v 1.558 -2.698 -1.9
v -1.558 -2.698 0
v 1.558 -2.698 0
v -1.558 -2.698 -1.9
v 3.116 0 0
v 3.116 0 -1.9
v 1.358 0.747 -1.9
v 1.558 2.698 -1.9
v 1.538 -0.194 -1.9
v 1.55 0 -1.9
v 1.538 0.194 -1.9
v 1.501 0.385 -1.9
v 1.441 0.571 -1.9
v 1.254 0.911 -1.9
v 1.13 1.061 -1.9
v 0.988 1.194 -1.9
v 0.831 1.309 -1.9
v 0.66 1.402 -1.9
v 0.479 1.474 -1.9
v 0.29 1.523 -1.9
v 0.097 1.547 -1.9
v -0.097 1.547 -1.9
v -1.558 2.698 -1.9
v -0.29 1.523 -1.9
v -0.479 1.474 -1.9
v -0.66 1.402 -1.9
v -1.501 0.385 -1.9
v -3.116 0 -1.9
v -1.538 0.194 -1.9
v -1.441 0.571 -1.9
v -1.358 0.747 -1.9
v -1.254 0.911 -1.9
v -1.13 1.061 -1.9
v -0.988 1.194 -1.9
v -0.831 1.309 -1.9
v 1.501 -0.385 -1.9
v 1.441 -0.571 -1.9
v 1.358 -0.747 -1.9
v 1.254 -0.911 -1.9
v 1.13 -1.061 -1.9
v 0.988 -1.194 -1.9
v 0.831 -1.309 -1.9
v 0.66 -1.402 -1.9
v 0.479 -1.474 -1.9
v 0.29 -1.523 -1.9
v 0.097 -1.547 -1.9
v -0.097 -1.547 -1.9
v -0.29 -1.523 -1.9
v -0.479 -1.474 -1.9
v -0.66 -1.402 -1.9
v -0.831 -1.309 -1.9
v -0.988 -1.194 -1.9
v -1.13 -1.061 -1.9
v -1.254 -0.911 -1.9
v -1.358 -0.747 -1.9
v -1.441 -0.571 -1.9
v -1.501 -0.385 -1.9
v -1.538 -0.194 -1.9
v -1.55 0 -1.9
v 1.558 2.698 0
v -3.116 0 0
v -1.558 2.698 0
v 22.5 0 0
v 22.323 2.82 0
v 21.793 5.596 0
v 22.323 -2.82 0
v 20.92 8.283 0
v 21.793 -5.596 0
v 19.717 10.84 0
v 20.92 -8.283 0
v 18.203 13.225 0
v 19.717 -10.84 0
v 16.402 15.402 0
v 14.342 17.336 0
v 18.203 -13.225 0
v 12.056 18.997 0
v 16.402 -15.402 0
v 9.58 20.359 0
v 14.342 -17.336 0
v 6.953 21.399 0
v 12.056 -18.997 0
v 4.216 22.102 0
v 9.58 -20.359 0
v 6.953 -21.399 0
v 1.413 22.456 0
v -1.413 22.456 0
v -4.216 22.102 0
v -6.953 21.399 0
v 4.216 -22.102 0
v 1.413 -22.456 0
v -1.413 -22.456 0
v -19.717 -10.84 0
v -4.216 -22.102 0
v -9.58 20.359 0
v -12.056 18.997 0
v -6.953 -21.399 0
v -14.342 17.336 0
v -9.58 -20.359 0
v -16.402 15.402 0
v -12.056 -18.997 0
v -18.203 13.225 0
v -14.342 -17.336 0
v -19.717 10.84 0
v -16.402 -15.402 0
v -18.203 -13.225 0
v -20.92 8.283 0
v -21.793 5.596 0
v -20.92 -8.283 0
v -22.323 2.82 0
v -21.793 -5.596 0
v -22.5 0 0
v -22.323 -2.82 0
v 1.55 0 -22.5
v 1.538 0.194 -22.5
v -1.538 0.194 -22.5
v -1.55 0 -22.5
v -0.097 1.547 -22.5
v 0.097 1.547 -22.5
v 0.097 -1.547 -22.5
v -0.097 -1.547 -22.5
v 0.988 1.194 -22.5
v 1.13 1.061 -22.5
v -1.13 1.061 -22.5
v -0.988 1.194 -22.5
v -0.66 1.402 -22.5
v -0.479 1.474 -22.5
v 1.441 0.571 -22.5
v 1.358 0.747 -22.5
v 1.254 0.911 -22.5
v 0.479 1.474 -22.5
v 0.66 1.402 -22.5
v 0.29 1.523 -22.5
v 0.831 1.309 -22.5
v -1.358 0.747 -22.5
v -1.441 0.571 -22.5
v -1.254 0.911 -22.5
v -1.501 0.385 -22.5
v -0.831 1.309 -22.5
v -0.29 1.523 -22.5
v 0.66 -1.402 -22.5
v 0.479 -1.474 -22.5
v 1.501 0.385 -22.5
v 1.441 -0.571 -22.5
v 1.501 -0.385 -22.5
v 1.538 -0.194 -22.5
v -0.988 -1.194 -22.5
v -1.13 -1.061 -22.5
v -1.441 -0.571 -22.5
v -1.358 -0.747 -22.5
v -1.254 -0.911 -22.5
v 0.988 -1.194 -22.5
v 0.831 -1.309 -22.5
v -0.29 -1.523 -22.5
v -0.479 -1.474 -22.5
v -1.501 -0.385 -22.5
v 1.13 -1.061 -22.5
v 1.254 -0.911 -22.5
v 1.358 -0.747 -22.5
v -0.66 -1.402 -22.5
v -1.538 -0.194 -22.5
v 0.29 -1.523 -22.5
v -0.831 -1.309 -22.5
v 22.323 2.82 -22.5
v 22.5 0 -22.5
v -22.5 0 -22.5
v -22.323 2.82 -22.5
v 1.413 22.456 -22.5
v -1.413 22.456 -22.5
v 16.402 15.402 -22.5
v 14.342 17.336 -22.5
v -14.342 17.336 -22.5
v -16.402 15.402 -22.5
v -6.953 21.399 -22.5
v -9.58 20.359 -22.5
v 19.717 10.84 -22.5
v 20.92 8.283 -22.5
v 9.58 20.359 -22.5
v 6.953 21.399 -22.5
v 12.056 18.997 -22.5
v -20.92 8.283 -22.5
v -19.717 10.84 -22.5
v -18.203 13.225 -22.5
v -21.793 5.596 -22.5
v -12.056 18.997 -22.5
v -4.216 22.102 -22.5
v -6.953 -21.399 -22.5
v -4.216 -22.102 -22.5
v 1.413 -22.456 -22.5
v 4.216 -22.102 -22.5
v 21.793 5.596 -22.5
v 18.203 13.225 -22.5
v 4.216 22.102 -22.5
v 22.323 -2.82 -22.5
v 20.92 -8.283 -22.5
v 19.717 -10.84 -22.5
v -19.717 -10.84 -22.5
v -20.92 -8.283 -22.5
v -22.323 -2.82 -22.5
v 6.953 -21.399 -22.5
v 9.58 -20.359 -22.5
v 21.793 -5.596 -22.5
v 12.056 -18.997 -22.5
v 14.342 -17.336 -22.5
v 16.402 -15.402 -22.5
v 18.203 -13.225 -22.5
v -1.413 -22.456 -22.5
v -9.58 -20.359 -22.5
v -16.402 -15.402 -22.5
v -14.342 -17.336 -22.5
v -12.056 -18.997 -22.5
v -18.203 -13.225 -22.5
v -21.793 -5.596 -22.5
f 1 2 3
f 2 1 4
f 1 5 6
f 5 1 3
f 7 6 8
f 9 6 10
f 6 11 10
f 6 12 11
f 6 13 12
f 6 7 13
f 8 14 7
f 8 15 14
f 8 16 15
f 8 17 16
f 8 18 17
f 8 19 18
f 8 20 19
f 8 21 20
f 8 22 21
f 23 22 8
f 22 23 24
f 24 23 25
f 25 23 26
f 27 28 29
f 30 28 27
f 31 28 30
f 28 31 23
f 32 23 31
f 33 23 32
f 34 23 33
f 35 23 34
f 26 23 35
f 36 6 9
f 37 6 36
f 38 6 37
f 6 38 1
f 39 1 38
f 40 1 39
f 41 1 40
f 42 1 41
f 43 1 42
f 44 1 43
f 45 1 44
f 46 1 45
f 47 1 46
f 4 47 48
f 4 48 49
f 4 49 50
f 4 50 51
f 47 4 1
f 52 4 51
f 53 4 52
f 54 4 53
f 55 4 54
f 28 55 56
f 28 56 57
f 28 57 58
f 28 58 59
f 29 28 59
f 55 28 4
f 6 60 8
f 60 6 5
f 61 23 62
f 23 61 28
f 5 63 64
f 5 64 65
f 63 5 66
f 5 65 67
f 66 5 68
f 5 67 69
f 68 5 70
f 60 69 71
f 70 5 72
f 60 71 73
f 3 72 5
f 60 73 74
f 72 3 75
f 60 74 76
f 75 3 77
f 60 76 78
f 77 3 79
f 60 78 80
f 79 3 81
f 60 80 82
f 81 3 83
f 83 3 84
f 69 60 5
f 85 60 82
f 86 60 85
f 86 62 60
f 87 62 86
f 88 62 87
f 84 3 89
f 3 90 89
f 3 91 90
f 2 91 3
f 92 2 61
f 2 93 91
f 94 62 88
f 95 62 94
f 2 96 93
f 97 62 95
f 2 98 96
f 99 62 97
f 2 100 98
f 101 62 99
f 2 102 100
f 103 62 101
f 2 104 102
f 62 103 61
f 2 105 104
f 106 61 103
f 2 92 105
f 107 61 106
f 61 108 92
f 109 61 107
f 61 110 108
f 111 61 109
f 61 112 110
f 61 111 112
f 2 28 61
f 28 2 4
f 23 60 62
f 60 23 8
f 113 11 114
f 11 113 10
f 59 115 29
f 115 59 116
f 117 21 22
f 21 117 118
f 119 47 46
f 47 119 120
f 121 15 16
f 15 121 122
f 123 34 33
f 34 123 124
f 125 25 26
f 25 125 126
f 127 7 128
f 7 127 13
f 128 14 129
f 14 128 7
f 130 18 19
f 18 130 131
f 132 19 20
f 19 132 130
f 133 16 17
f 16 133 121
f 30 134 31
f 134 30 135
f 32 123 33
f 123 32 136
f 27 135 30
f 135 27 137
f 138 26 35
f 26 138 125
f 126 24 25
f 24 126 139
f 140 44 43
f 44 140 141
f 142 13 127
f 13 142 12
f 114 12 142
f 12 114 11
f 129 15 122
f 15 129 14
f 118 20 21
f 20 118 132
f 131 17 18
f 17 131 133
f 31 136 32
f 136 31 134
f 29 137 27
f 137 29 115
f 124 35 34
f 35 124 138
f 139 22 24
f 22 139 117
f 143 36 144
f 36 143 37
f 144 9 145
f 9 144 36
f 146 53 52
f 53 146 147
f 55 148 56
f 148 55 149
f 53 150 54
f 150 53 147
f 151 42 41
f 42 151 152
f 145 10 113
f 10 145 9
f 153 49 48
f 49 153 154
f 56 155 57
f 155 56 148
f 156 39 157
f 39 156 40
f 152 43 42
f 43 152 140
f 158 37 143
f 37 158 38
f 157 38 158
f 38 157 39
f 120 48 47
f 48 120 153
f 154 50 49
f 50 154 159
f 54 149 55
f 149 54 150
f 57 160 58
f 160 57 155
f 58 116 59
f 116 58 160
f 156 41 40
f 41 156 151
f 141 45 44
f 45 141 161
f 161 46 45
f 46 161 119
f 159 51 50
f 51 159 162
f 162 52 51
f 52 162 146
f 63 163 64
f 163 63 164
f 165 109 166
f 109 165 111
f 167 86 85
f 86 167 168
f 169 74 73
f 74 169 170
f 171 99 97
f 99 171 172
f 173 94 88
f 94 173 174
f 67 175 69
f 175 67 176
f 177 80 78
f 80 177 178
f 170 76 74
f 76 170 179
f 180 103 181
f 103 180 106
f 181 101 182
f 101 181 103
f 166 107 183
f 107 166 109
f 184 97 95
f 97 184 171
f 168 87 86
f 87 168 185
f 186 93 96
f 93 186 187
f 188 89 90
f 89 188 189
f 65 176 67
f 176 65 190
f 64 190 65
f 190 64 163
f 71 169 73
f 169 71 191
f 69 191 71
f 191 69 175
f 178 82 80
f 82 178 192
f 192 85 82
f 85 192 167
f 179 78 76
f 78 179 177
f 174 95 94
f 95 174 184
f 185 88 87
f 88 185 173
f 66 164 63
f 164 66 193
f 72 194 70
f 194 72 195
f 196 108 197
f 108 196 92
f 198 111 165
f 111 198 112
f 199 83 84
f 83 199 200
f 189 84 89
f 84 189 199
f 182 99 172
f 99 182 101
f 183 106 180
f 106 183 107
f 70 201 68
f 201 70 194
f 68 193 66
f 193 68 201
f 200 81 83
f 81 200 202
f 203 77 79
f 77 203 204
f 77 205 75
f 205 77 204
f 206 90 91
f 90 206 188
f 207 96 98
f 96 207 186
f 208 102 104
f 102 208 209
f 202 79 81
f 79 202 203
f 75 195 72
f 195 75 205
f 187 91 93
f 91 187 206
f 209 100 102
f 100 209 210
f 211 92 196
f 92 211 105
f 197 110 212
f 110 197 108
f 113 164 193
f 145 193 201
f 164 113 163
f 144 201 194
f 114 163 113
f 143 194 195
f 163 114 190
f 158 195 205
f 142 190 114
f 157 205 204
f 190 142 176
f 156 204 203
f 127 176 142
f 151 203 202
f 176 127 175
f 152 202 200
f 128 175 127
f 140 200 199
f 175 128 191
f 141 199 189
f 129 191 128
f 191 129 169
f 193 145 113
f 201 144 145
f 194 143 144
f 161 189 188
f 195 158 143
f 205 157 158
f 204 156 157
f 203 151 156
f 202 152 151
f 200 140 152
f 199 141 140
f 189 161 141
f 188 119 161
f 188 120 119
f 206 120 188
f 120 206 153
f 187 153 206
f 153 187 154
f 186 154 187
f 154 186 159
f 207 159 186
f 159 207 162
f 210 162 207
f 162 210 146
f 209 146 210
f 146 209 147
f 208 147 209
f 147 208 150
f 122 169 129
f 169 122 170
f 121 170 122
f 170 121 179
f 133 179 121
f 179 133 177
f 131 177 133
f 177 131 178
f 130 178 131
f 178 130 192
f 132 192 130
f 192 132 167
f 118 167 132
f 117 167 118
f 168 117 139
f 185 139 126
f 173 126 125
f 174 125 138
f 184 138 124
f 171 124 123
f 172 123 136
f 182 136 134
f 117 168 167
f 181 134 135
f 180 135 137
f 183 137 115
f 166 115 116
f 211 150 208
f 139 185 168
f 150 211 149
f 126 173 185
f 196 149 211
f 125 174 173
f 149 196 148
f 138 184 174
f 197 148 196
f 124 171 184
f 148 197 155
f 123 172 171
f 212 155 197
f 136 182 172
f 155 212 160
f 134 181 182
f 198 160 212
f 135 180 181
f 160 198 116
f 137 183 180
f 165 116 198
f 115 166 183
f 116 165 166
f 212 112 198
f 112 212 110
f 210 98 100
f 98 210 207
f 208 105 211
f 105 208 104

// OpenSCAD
$fn = 50;

difference() {
	union() {
		translate(v = [0, 0, -22.5]) {
			cylinder(h = 22.5, r = 22.5);
		}
	}
	union() {
		translate(v = [0, 0, 0]) {
			rotate(a = [0, 0, 0]) {
				difference() {
					union() {
						translate(v = [0, 0, -1.9]) {
							linear_extrude(height = 1.9) {
								polygon(points = [[3.1158, 0.0], [1.5579000000000005, 2.698361953111554], [-1.5578999999999994, 2.6983619531115544], [-3.1158, 3.815754496783323e-16], [-1.5579000000000014, -2.6983619531115535], [1.557899999999998, -2.6983619531115552]]);
							}
						}
					}
					union();
				}
			}
		}
		#translate(v = [0, 0, -100.0]) {
			cylinder(h = 200, r = 1.55);
		}
	}
}
